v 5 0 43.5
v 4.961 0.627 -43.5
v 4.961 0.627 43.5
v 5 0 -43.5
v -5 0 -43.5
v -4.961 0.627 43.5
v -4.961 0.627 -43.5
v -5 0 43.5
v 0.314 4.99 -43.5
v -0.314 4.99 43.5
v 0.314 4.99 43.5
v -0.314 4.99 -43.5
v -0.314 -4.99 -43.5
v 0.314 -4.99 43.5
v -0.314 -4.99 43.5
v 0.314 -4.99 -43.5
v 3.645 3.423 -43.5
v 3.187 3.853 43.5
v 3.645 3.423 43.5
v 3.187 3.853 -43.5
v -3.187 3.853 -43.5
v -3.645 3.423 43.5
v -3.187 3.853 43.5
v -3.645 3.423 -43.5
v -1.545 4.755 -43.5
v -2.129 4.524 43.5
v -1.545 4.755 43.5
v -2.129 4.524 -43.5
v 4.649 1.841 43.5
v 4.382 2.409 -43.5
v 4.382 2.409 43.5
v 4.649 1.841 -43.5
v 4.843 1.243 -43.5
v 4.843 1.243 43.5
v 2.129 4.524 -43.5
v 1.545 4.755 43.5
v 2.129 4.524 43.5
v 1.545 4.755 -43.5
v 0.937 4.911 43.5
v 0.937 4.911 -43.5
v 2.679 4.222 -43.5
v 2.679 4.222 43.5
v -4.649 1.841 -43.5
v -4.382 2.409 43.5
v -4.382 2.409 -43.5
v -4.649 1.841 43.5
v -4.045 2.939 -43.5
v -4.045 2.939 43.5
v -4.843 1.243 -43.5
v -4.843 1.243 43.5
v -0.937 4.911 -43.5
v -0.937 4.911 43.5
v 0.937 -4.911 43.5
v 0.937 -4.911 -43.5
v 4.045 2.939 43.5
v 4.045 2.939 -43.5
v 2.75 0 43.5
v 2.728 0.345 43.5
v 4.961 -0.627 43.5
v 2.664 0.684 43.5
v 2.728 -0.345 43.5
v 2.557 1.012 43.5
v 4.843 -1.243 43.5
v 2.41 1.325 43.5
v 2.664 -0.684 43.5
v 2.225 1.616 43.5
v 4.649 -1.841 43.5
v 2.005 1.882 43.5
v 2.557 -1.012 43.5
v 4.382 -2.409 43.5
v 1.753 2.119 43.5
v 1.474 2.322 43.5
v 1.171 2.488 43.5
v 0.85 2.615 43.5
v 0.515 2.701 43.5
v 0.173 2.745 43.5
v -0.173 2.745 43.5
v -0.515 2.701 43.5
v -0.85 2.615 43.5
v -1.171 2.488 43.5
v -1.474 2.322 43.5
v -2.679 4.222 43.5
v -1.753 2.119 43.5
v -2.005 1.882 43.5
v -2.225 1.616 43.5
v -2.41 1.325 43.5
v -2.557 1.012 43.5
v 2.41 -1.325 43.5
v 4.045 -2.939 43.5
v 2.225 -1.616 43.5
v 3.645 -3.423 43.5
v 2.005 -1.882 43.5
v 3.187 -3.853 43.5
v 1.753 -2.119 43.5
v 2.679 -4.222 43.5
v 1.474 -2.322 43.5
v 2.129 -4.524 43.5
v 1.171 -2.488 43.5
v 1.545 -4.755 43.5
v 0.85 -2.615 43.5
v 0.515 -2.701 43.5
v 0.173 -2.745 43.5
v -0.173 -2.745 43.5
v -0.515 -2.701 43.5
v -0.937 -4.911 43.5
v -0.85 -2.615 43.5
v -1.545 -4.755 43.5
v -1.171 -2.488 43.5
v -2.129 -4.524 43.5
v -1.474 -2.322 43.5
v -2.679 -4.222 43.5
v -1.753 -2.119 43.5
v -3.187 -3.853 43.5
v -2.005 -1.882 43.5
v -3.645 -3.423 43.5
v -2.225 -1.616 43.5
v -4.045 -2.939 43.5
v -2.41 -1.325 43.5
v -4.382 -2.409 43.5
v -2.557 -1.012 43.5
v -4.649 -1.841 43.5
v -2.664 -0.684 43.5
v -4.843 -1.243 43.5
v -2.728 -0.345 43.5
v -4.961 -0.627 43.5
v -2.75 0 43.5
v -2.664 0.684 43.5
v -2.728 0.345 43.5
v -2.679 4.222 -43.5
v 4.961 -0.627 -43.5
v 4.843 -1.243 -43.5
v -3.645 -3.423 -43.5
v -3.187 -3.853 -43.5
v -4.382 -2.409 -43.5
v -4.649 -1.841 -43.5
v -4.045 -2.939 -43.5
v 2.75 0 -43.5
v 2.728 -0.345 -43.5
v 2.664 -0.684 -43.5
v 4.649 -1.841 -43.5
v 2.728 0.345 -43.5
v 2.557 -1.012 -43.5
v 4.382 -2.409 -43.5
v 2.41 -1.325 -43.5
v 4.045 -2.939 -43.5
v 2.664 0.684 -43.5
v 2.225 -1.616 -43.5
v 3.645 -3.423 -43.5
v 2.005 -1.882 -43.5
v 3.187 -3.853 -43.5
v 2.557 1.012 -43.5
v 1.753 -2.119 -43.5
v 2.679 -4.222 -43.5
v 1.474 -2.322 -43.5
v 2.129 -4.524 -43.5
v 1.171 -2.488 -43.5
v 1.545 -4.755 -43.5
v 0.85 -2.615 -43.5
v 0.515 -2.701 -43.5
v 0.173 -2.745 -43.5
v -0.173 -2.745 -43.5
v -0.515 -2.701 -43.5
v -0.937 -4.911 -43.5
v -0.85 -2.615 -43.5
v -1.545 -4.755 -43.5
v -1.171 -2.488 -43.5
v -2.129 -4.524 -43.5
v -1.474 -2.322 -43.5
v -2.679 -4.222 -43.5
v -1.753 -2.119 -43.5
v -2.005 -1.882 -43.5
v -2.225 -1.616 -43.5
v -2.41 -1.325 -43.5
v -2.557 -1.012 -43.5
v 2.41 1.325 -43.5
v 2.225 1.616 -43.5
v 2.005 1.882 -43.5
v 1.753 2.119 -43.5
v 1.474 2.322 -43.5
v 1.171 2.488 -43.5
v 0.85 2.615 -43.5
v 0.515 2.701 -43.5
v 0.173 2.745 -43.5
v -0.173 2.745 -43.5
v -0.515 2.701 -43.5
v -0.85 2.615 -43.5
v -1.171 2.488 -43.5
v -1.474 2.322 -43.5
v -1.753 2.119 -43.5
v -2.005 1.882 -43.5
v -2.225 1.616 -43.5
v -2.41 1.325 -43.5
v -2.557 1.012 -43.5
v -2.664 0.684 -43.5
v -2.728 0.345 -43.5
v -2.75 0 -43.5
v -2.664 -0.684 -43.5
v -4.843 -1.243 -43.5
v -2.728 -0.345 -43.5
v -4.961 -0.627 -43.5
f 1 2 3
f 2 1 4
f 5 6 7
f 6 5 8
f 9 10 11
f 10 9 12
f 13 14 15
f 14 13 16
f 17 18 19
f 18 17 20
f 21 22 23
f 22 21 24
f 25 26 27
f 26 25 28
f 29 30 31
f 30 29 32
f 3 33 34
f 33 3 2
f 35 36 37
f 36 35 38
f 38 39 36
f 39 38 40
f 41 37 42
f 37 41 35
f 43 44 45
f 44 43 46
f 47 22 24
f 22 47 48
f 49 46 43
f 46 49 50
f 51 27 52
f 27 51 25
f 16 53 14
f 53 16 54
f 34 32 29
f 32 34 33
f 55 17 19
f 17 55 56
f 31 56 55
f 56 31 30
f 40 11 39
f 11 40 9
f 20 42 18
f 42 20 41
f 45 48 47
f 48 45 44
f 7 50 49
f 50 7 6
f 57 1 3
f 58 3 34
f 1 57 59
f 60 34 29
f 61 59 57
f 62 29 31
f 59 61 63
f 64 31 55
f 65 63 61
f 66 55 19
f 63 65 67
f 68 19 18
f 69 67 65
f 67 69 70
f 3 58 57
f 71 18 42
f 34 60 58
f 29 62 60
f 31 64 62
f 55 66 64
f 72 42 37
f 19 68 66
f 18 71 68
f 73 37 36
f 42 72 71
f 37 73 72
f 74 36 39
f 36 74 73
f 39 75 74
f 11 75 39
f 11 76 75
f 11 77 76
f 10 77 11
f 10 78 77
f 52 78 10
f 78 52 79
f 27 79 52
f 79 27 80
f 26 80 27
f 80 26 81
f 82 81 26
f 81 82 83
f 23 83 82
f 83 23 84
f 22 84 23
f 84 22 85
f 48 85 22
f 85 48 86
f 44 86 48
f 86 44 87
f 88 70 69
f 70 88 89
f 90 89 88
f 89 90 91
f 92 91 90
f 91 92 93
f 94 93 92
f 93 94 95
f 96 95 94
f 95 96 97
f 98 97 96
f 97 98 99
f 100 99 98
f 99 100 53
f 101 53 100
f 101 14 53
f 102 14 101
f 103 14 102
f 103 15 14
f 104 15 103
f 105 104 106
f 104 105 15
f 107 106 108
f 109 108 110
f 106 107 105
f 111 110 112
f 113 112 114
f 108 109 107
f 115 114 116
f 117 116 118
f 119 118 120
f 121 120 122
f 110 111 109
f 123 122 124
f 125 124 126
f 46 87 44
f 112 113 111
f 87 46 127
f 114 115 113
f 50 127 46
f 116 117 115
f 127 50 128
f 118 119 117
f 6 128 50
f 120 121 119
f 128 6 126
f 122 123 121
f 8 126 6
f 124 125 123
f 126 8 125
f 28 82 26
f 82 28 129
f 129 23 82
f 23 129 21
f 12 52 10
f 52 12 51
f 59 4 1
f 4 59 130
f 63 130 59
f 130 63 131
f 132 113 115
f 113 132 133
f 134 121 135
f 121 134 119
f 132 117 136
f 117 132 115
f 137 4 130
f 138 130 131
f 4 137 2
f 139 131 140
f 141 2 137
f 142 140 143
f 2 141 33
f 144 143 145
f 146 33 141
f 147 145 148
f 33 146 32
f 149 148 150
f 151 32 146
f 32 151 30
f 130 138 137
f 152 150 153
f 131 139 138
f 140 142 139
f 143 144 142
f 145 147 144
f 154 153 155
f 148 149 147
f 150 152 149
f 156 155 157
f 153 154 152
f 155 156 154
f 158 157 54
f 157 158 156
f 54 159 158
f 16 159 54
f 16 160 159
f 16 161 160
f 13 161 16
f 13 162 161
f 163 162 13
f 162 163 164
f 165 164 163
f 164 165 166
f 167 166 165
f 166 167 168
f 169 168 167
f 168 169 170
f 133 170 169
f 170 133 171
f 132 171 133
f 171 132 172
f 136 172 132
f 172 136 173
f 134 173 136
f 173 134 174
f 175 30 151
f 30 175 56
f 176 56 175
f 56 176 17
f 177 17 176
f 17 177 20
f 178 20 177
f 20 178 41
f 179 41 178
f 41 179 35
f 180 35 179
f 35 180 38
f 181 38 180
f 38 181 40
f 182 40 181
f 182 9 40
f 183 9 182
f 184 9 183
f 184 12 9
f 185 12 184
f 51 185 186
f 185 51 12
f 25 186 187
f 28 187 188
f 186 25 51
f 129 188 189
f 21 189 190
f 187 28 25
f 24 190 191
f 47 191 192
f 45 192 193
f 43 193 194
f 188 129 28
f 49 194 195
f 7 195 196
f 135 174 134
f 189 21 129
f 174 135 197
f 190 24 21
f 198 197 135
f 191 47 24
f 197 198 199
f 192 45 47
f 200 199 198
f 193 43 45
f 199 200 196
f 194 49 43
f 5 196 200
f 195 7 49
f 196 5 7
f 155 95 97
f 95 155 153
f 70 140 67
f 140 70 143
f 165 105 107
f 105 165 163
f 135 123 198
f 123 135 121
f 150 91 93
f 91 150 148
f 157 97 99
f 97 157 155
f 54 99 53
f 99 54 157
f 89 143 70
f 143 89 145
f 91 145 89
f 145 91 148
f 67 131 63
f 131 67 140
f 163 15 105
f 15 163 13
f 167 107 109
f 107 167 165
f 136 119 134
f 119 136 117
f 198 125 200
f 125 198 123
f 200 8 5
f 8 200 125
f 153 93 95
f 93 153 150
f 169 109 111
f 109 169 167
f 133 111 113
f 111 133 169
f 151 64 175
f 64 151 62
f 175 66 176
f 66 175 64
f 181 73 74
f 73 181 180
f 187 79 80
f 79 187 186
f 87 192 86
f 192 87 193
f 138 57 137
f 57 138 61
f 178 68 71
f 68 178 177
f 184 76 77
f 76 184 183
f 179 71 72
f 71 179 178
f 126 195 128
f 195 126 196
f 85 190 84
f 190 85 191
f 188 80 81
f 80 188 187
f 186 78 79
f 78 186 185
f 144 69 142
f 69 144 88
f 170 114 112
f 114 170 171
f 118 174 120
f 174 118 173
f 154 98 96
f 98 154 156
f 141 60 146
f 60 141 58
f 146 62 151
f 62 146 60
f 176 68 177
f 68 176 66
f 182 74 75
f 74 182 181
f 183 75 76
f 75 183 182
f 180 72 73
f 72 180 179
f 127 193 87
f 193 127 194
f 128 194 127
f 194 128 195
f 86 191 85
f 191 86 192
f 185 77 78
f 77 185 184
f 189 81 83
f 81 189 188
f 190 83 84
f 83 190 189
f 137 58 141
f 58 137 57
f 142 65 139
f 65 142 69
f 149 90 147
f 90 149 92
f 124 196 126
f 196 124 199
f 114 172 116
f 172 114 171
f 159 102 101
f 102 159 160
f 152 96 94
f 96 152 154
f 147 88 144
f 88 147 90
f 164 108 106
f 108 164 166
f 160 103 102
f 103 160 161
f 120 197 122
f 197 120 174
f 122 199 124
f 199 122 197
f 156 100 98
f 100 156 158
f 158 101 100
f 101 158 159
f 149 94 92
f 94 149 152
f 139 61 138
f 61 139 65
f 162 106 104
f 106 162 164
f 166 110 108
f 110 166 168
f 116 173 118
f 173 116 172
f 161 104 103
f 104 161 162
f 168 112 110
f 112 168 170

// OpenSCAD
$fn = 50;


difference() {
	union() {
		translate(v = [0, 0, -43.5000000000]) {
			cylinder(h = 87, r = 5.0000000000);
		}
	}
	union() {
		translate(v = [0, 0, -100.0000000000]) {
			cylinder(h = 200, r = 2.7500000000);
		}
	}
}
